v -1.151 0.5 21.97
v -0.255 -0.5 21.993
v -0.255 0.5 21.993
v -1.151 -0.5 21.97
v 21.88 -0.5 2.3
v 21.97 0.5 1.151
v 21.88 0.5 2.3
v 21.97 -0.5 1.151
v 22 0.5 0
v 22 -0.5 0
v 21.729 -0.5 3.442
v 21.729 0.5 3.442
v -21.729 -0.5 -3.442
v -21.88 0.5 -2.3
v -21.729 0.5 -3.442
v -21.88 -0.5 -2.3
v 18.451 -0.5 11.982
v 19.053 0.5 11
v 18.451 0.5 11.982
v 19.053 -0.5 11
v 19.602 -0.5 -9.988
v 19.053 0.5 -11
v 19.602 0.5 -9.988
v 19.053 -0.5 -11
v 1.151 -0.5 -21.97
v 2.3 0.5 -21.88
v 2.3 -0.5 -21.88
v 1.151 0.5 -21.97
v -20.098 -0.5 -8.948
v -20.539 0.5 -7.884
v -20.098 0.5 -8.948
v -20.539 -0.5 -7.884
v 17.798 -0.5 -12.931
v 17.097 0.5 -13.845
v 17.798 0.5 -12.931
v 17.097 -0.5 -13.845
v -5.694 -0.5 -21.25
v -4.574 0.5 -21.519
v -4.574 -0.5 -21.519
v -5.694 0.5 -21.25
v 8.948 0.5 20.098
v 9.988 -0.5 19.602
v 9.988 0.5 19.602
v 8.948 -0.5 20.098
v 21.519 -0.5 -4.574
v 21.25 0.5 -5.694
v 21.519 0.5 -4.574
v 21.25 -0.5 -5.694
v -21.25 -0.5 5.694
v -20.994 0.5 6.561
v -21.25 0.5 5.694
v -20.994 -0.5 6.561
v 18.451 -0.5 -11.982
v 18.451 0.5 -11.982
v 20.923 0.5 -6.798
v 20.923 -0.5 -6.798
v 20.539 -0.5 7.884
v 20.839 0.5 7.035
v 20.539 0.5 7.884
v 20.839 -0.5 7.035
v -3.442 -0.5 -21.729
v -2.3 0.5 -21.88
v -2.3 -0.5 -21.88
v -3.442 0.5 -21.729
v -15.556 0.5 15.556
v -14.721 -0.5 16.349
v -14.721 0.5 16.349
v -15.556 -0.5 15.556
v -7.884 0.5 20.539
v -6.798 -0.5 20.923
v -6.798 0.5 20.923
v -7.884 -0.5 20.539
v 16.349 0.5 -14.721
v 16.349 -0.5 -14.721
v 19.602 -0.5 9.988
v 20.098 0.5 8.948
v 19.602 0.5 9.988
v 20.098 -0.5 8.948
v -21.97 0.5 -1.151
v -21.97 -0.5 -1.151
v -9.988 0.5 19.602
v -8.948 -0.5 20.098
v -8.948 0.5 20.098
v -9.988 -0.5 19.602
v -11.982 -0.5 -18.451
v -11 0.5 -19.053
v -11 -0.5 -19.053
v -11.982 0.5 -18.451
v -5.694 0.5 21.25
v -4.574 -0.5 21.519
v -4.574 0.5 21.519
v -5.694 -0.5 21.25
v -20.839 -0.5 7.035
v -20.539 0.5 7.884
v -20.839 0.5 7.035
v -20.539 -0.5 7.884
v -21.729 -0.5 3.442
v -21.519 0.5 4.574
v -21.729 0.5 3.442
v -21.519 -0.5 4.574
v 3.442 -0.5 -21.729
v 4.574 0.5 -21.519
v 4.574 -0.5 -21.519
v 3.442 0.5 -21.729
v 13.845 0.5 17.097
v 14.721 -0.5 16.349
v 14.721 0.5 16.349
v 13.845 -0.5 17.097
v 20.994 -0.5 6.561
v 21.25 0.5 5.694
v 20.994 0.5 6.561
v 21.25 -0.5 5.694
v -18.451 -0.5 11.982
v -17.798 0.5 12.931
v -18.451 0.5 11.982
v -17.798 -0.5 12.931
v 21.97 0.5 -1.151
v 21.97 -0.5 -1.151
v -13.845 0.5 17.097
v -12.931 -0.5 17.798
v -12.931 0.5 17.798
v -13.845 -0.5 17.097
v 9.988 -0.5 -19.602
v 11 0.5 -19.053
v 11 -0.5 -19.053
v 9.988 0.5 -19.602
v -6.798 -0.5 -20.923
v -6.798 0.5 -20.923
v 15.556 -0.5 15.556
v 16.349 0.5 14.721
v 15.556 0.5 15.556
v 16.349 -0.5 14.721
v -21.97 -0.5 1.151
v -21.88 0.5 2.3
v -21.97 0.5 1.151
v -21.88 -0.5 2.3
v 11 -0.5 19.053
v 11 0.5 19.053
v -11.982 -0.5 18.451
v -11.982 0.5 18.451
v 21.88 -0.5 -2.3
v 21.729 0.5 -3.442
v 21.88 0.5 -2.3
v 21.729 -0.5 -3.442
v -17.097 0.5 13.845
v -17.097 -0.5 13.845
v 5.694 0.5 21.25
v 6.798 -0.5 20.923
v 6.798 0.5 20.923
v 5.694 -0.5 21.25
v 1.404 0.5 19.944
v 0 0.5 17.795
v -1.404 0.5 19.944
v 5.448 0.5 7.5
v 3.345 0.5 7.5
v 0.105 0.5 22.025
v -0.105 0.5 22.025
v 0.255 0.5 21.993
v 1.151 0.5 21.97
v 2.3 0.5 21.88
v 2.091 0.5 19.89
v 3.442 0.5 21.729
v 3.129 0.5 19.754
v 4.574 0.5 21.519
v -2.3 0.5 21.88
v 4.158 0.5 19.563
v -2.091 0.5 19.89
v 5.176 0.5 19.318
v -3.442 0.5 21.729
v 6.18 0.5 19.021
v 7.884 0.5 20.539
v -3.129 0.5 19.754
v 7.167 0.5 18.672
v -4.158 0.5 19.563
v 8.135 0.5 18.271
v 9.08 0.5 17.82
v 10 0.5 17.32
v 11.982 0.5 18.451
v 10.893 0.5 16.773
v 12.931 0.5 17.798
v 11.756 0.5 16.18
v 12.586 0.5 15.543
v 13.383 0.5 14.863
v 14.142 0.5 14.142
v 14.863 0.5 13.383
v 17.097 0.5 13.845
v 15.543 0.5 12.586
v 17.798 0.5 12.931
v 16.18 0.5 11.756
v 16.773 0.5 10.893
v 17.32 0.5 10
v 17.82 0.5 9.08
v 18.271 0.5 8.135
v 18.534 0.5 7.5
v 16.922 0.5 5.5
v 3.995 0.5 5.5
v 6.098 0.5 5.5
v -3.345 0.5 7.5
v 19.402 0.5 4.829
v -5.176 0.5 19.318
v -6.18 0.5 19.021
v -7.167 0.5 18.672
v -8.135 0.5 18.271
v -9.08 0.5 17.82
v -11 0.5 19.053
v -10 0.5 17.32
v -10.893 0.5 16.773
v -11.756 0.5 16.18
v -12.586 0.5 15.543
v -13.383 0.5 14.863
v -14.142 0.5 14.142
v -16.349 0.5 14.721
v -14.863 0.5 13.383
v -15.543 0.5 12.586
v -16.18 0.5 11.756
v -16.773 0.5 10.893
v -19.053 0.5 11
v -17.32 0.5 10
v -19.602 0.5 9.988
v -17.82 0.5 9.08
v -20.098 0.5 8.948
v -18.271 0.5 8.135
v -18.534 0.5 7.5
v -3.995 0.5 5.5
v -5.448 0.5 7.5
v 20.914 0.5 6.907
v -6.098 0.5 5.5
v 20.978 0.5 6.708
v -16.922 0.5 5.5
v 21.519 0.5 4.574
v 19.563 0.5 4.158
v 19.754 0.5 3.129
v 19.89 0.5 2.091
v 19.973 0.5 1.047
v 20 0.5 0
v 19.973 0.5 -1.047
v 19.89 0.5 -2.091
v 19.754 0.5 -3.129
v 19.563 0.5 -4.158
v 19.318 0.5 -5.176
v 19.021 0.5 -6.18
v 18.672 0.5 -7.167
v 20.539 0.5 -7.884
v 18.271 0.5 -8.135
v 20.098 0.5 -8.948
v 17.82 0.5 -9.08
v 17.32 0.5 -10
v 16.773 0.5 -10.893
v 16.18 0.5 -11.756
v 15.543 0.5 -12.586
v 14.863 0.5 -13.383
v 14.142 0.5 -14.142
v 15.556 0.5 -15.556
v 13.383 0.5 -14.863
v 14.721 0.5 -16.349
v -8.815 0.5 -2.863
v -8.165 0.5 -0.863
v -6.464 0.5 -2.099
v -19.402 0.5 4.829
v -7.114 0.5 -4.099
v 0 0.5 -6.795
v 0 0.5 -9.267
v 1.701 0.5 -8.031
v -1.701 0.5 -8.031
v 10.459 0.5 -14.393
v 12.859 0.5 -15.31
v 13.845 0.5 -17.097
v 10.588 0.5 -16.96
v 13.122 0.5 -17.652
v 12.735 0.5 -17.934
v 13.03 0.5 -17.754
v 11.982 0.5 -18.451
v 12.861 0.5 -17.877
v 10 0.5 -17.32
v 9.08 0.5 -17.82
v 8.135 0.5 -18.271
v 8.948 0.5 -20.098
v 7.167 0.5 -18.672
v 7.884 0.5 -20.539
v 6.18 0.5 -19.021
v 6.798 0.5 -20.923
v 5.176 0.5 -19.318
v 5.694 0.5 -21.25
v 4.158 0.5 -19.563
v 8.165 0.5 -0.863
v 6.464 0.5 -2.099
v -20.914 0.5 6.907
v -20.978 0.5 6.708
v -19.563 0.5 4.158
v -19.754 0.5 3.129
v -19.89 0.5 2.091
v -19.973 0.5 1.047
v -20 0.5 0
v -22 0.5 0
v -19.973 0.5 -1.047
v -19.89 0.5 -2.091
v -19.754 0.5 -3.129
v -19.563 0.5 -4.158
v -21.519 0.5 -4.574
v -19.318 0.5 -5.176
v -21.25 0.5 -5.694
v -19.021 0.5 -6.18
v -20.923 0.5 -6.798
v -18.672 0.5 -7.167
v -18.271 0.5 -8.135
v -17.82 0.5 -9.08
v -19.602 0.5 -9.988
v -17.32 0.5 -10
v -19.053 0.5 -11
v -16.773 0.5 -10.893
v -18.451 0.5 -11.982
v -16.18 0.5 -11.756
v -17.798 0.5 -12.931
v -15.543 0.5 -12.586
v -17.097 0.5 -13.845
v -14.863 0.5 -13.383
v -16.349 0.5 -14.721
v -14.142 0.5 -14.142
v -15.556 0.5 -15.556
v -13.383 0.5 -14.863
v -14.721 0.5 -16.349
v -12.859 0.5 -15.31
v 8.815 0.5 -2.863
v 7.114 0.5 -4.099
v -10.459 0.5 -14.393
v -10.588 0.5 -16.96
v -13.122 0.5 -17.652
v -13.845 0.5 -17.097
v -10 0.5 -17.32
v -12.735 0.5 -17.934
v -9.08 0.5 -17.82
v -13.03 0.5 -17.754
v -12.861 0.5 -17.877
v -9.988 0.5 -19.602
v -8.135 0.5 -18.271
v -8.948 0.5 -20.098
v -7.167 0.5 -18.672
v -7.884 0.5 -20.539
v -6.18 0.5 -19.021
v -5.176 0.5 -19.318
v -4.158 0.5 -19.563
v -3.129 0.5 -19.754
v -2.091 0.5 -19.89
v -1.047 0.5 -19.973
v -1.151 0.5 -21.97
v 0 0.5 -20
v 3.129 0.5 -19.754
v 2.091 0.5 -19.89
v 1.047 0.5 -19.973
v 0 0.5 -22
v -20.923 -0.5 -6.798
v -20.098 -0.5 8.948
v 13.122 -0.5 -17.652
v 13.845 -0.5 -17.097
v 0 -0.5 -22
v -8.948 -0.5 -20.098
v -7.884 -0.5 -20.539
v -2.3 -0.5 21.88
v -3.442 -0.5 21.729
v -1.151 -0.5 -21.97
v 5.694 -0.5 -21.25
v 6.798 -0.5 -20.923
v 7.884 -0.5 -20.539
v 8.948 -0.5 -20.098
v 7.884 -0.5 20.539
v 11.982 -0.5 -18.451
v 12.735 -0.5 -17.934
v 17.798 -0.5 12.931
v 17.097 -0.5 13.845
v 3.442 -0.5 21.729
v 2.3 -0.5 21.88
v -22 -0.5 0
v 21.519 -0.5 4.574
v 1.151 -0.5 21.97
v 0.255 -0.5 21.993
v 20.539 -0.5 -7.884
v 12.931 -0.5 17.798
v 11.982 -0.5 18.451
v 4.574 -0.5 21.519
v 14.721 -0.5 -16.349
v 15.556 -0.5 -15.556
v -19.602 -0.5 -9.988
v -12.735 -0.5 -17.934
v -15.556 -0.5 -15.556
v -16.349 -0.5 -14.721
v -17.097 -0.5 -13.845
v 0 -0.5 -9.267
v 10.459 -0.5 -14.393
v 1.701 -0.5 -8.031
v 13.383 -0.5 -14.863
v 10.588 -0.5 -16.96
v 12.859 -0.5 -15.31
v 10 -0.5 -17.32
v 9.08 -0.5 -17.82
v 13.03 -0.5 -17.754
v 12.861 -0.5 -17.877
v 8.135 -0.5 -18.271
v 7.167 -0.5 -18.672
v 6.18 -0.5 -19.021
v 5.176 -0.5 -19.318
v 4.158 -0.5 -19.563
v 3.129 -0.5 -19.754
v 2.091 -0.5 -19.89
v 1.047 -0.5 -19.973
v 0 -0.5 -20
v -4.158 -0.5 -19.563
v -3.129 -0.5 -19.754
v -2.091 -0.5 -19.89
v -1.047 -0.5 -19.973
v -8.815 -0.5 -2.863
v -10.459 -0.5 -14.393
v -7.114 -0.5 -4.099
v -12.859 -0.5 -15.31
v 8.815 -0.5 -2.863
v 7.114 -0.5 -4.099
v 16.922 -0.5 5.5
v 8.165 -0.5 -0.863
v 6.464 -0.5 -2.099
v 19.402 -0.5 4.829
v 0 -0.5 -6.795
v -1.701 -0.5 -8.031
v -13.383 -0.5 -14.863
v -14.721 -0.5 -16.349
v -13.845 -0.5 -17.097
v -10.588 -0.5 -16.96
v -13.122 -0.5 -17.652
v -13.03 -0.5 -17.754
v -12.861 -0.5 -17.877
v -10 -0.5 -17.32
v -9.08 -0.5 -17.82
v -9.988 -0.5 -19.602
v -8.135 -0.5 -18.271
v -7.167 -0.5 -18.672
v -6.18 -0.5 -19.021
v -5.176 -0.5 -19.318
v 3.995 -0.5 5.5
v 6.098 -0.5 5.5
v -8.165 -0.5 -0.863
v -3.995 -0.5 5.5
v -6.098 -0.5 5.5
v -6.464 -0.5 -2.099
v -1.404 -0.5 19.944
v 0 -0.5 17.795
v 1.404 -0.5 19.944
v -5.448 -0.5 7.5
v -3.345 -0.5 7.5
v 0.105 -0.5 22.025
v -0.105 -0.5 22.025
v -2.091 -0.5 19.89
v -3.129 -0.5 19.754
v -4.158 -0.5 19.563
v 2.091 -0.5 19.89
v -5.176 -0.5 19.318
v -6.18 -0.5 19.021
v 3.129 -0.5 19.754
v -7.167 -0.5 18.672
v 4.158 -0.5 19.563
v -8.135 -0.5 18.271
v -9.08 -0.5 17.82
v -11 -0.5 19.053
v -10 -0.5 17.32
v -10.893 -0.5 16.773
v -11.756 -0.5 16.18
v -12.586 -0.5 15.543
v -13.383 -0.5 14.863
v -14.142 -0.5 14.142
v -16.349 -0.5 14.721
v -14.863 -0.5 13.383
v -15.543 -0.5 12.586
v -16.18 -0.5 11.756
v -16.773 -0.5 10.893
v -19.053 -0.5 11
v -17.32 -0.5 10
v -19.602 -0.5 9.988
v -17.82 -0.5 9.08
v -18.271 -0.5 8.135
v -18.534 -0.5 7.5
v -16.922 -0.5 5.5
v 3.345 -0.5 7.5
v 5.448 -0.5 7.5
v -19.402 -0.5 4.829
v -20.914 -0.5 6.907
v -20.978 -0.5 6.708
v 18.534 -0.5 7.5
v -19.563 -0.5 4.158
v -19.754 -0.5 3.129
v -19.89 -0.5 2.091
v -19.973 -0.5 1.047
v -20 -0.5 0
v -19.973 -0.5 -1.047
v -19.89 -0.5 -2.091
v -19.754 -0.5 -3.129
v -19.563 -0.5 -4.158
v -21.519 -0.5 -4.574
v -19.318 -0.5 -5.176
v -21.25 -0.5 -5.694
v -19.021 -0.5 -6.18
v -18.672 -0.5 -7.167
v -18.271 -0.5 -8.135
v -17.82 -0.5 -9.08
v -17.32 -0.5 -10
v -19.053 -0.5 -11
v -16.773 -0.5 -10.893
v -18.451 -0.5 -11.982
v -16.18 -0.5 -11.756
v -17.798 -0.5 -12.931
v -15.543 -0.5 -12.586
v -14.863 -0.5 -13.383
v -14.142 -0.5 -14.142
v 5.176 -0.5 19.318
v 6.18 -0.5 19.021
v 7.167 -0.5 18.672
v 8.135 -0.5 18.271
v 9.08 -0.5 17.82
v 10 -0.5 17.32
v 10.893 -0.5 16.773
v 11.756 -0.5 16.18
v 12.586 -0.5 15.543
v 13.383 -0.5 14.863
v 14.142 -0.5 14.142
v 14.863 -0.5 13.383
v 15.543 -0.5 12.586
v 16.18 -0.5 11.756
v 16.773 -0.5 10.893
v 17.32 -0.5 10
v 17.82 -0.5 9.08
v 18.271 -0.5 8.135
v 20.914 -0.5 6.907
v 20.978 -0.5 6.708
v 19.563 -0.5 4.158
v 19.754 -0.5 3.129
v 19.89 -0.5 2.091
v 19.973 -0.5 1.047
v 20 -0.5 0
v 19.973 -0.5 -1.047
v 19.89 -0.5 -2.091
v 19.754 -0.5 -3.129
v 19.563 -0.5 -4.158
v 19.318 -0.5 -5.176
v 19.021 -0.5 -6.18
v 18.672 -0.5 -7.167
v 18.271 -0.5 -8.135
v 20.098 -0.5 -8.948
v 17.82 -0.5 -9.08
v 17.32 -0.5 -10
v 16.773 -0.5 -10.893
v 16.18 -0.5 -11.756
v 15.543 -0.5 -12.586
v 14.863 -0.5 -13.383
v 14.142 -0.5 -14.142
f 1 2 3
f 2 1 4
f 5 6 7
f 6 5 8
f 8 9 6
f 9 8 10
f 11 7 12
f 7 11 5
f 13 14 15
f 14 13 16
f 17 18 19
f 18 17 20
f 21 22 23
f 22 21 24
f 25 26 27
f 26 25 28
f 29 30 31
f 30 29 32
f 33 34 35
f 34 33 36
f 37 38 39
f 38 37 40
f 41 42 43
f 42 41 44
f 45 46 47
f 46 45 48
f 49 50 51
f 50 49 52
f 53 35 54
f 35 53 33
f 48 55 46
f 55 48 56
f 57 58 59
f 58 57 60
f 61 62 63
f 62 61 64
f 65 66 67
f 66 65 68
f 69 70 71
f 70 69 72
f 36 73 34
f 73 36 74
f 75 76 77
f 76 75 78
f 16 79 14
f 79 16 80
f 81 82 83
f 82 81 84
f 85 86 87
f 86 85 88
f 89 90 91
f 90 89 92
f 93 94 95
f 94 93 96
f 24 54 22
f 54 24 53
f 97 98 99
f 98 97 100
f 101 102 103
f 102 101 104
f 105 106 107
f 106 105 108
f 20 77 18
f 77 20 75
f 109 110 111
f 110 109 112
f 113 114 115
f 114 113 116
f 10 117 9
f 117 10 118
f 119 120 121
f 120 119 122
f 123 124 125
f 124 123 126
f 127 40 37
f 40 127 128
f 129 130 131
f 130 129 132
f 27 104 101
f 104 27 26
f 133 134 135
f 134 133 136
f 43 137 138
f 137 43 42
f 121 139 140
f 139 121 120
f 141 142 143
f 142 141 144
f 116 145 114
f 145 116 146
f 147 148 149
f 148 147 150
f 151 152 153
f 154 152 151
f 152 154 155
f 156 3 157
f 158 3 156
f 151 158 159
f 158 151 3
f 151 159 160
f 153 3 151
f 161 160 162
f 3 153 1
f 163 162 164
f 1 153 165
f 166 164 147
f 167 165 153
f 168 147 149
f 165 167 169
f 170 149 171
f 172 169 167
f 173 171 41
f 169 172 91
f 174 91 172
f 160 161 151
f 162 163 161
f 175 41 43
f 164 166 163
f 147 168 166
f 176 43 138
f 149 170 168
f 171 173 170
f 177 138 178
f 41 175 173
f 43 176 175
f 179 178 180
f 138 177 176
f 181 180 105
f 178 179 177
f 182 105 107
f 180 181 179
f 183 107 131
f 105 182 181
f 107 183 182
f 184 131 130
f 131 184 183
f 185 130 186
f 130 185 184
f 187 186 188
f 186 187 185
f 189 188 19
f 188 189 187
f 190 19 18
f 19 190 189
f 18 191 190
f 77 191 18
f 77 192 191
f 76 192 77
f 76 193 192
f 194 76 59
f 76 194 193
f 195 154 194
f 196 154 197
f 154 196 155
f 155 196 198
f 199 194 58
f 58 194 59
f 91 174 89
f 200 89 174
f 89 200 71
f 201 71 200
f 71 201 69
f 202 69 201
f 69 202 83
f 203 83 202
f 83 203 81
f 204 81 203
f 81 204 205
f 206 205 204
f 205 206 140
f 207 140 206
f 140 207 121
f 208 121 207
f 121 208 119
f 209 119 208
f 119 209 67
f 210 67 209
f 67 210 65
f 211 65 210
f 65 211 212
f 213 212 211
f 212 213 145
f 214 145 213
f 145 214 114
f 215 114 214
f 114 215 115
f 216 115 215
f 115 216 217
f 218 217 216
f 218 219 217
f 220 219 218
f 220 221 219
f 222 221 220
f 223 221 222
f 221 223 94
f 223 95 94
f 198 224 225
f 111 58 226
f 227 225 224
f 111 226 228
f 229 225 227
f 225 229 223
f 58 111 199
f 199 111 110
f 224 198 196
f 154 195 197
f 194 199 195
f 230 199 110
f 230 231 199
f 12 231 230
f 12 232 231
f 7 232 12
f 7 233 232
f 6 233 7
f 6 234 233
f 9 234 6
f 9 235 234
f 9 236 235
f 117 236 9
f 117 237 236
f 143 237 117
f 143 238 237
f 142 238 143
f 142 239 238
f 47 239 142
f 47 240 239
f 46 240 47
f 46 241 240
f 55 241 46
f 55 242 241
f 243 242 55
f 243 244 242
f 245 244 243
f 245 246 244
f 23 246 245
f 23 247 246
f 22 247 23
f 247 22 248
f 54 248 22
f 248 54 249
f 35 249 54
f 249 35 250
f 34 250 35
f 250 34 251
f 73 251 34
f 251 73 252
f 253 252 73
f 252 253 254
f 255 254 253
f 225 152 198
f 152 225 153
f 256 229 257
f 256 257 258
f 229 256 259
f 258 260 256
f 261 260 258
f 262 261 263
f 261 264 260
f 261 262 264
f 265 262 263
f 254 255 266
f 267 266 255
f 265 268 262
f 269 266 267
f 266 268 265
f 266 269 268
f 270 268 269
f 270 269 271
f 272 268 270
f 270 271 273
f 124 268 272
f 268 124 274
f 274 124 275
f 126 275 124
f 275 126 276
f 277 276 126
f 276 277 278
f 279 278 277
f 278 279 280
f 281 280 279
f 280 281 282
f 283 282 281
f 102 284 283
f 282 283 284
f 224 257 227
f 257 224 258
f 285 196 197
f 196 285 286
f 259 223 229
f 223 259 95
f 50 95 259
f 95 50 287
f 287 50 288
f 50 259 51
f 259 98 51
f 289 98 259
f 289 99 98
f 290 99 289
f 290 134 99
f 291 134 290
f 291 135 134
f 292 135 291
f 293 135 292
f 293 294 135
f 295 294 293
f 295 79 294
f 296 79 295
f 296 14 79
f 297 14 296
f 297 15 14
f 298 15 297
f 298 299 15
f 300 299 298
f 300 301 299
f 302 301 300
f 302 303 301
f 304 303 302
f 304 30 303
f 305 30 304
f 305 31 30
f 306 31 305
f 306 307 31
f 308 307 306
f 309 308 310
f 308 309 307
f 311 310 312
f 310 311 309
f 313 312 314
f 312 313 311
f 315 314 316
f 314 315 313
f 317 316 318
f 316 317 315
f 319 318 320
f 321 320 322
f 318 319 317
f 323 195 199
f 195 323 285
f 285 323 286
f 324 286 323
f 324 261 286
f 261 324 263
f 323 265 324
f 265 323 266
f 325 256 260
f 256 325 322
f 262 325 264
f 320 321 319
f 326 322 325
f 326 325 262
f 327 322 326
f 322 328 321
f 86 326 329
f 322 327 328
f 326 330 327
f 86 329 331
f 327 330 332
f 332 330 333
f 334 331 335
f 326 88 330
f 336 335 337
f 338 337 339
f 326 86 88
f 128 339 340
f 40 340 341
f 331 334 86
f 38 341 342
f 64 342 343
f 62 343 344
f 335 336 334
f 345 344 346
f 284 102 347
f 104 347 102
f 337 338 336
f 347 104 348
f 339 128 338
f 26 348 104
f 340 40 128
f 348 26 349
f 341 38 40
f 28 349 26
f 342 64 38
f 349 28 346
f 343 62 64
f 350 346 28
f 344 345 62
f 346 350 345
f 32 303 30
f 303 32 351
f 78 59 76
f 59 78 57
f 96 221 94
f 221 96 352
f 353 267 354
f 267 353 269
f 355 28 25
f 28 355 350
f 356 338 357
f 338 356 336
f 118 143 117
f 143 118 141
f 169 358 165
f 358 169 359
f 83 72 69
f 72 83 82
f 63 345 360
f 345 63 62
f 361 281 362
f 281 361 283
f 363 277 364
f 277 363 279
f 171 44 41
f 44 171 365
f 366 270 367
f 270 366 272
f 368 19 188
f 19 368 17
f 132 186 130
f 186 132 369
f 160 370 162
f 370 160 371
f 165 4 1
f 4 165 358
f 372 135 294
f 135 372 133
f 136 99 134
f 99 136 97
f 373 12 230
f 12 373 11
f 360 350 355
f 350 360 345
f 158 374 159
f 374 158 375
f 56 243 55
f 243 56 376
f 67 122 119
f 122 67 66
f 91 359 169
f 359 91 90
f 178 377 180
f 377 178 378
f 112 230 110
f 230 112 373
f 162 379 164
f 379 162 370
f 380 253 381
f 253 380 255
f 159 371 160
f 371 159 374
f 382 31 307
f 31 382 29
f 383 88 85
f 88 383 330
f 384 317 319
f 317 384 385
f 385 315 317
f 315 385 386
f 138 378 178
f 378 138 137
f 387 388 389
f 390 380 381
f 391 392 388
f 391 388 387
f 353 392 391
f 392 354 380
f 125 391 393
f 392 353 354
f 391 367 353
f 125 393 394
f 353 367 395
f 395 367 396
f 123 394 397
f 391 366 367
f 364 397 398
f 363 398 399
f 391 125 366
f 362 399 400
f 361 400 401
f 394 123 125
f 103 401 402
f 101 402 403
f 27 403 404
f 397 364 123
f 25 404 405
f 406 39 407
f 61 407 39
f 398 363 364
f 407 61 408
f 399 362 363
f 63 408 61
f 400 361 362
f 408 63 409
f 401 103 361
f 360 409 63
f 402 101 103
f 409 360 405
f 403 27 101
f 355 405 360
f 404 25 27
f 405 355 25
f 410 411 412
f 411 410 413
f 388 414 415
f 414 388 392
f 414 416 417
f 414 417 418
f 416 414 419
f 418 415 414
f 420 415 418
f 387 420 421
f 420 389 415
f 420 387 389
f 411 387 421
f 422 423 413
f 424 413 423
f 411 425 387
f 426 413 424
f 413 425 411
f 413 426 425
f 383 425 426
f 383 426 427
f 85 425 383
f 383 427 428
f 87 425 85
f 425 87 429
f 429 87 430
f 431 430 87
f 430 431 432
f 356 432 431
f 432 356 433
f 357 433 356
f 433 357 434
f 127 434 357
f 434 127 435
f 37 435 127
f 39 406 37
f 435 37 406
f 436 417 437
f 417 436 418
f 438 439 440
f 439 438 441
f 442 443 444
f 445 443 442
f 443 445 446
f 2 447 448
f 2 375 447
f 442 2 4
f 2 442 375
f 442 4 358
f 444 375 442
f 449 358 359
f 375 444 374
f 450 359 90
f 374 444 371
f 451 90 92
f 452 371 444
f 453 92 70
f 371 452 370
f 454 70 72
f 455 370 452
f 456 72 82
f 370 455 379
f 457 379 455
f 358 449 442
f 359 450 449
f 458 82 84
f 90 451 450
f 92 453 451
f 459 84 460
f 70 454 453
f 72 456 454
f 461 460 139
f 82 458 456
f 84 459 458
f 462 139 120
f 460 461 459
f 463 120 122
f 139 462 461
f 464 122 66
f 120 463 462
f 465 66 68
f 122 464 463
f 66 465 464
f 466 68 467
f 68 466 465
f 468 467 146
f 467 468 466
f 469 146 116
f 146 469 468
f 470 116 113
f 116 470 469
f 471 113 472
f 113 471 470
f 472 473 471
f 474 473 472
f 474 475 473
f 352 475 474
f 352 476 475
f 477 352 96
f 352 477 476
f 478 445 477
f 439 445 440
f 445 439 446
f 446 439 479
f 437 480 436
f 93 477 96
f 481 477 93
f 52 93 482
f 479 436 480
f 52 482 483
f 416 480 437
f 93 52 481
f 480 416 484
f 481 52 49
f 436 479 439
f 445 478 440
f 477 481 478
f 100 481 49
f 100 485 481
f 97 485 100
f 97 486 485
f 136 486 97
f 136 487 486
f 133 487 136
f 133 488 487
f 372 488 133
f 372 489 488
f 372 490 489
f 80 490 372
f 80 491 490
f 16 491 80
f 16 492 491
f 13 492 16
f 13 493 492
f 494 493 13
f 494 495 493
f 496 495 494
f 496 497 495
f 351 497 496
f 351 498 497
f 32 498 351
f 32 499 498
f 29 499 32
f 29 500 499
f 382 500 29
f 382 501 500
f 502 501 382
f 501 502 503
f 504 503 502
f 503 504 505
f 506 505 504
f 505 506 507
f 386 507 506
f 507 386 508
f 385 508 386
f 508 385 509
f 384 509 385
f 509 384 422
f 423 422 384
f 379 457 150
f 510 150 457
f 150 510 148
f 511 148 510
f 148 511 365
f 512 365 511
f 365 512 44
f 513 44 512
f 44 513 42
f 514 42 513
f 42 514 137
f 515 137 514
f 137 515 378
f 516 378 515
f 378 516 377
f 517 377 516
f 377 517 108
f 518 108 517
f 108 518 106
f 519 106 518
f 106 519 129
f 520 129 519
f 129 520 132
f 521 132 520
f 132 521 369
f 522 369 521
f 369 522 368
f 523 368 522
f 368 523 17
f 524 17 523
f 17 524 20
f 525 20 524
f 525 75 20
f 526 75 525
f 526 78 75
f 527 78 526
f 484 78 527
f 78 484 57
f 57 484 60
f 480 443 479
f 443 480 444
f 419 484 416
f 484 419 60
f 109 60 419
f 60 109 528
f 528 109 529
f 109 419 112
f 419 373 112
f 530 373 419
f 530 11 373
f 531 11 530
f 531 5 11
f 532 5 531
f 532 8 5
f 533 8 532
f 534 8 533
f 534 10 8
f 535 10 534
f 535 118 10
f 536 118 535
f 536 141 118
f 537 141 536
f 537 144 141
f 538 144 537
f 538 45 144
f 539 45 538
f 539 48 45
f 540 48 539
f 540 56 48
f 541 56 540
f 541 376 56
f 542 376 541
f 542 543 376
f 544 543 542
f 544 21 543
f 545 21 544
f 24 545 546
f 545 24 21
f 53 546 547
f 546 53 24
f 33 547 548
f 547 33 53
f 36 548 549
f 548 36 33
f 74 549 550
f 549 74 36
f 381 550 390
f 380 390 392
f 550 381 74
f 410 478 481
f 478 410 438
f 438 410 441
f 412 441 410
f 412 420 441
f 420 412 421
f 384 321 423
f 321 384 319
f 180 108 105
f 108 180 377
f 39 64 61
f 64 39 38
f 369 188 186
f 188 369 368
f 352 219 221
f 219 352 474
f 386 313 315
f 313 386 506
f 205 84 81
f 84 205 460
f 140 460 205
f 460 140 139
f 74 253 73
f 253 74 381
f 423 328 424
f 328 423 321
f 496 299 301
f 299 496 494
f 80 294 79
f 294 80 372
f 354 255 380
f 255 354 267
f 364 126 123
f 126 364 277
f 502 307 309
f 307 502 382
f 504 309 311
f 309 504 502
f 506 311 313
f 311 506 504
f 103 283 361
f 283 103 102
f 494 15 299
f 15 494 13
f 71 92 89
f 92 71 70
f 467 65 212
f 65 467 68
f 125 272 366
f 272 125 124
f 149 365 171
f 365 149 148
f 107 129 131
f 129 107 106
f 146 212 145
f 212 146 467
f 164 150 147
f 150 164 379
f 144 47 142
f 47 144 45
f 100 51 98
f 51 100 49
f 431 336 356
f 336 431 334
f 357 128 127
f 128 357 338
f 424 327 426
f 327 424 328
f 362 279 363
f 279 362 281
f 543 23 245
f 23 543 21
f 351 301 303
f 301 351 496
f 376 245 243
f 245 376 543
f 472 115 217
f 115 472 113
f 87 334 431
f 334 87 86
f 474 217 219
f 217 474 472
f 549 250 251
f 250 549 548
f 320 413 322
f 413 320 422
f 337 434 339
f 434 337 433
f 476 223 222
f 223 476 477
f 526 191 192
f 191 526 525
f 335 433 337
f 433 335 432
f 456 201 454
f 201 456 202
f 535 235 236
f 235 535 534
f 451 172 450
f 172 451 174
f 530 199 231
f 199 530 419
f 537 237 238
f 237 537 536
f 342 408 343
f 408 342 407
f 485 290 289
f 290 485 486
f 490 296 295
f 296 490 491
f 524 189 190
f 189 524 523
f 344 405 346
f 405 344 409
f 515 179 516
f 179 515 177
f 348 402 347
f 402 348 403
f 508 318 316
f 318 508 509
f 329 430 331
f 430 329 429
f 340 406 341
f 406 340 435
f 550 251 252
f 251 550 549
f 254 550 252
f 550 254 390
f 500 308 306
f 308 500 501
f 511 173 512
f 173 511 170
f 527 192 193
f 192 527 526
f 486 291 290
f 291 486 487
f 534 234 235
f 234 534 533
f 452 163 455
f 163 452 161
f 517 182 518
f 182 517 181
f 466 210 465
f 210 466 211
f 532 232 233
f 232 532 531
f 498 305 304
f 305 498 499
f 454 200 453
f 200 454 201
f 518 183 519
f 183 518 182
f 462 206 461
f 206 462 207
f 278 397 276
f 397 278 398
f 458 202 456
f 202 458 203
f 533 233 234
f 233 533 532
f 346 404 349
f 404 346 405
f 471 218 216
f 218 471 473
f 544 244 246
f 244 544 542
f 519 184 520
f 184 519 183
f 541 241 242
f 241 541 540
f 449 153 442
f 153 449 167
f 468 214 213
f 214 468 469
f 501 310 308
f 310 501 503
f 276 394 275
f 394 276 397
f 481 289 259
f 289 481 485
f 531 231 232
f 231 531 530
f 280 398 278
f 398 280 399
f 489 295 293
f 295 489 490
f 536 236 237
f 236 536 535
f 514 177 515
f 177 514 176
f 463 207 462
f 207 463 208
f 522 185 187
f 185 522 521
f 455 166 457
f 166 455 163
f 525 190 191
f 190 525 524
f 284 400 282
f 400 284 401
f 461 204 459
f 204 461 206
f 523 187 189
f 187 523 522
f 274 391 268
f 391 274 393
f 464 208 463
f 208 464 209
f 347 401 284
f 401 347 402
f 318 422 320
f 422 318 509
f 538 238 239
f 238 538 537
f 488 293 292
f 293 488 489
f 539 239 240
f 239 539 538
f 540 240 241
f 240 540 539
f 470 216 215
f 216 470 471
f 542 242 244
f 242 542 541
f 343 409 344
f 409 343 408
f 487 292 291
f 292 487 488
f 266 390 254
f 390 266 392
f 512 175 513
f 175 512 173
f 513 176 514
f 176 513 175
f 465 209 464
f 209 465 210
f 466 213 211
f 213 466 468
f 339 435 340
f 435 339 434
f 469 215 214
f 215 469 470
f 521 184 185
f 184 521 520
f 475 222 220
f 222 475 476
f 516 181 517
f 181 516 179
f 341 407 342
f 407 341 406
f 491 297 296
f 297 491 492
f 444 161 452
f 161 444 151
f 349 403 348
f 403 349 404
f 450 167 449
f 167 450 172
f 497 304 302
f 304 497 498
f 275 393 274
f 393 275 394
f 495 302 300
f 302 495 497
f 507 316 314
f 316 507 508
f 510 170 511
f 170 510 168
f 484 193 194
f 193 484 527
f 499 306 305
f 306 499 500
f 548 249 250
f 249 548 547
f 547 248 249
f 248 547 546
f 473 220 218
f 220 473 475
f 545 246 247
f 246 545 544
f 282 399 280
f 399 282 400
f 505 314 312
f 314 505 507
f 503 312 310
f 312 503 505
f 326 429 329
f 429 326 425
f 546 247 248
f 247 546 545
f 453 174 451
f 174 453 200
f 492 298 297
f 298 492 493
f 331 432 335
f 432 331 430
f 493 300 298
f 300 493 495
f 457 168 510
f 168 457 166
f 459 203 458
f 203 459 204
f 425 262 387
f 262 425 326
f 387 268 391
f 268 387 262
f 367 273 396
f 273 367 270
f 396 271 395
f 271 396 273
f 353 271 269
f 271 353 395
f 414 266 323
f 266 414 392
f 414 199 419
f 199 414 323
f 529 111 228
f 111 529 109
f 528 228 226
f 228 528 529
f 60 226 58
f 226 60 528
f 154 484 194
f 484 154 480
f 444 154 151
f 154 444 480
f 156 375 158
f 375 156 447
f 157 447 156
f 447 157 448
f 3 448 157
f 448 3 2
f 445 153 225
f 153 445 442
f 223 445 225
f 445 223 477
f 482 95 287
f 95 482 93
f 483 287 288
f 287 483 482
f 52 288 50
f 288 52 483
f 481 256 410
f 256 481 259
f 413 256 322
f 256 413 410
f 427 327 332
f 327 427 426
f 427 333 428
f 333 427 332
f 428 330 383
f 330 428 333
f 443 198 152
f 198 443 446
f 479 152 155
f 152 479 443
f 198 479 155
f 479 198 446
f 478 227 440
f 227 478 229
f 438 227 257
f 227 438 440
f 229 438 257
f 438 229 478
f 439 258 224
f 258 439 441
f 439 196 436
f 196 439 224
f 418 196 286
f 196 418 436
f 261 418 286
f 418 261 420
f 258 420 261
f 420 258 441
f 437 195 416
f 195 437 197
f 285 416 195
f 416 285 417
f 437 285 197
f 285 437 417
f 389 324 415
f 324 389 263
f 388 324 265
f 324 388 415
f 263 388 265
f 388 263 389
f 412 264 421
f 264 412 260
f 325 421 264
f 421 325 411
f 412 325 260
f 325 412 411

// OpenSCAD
/*
   turtle simulation 
   
   Kit Wallace 
   
   Code licensed under the Creative Commons - Attribution - Share Alike license.
  The project is documented in my blog 
   http://kitwallace.tumblr.com/tagged/turtle
*/

function flatten(l) = [ for (a = l) for (b = a) b ] ;

module ruler(n) {
   for (i=[0:n-1]) 
       translate([(i-n/2 +0.5)* 10,0,0]) cube([9.8,5,2], center=true);
}

module turtle (steps, i=0) {
  if ( i < len(steps)) {
   step = steps[i];
   command=step[0];
      
   if(command=="F") {
       distance = step[1];
       width=step[2];
       translate([distance/2,0]) 
            square([distance,width],center=true);
       translate([distance,0]) 
         turtle(steps,i+1);
      }
   else if (command=="L") {
      angle=step[1];
      width=step[2];
      circle(width/2);
      rotate([0,0,angle])
         turtle(steps,i+1);
      }
   else if (command=="R") {
      angle=step[1];
      width=step[2];
      circle(width/2);
      rotate([0,0,-angle])
         turtle(steps,i+1);
      }
   else
      echo("unknown command" ,step);
  }
};

//  basic poly 
function poly(side,angle,steps,width=1) =
   flatten(
    [for (i=[0:steps-1])
     [ ["F",side,width],["R",angle,width]]
    ]);

function poly2(side,angle,steps,width=1) =
   flatten(
    [for (i=[0:steps-1])
     [ ["F",side,width],["R",angle,width],["F",side,width],["R",2*angle,width] ]
    ]);

function spi(side,side_inc,angle,width=1,steps) =
   steps == 0
      ? []
      : concat( [["F",side,width]],
                [["L",angle,width]] ,
                spi(side+side_inc,side_inc,angle,width,steps-1) 
              )
    ; 
    
$fn=30;
// steps = poly(20,90,4);      //square
// steps = poly(10,45,8,4);    // an octagon  
 steps =  poly(40,144,5,2);  // a pentagram
// steps = poly(30,135,8);
// steps = poly(20,108,11);
// steps= poly2(5,144,5);
// steps= poly2(3,125,40,0.5);
    
//steps = spi(2,1,60,3,20);
echo(steps);

rotate([90,0,0]){
    translate([-20,6.5,0])
    linear_extrude(height=1, center=true)
        turtle(steps);
    difference(){
        cylinder(r=22, h=1, $fn=120, center=true);
        cylinder(r=20, h=100, $fn=120, center=true);
    }
}

//*ruler(10);
